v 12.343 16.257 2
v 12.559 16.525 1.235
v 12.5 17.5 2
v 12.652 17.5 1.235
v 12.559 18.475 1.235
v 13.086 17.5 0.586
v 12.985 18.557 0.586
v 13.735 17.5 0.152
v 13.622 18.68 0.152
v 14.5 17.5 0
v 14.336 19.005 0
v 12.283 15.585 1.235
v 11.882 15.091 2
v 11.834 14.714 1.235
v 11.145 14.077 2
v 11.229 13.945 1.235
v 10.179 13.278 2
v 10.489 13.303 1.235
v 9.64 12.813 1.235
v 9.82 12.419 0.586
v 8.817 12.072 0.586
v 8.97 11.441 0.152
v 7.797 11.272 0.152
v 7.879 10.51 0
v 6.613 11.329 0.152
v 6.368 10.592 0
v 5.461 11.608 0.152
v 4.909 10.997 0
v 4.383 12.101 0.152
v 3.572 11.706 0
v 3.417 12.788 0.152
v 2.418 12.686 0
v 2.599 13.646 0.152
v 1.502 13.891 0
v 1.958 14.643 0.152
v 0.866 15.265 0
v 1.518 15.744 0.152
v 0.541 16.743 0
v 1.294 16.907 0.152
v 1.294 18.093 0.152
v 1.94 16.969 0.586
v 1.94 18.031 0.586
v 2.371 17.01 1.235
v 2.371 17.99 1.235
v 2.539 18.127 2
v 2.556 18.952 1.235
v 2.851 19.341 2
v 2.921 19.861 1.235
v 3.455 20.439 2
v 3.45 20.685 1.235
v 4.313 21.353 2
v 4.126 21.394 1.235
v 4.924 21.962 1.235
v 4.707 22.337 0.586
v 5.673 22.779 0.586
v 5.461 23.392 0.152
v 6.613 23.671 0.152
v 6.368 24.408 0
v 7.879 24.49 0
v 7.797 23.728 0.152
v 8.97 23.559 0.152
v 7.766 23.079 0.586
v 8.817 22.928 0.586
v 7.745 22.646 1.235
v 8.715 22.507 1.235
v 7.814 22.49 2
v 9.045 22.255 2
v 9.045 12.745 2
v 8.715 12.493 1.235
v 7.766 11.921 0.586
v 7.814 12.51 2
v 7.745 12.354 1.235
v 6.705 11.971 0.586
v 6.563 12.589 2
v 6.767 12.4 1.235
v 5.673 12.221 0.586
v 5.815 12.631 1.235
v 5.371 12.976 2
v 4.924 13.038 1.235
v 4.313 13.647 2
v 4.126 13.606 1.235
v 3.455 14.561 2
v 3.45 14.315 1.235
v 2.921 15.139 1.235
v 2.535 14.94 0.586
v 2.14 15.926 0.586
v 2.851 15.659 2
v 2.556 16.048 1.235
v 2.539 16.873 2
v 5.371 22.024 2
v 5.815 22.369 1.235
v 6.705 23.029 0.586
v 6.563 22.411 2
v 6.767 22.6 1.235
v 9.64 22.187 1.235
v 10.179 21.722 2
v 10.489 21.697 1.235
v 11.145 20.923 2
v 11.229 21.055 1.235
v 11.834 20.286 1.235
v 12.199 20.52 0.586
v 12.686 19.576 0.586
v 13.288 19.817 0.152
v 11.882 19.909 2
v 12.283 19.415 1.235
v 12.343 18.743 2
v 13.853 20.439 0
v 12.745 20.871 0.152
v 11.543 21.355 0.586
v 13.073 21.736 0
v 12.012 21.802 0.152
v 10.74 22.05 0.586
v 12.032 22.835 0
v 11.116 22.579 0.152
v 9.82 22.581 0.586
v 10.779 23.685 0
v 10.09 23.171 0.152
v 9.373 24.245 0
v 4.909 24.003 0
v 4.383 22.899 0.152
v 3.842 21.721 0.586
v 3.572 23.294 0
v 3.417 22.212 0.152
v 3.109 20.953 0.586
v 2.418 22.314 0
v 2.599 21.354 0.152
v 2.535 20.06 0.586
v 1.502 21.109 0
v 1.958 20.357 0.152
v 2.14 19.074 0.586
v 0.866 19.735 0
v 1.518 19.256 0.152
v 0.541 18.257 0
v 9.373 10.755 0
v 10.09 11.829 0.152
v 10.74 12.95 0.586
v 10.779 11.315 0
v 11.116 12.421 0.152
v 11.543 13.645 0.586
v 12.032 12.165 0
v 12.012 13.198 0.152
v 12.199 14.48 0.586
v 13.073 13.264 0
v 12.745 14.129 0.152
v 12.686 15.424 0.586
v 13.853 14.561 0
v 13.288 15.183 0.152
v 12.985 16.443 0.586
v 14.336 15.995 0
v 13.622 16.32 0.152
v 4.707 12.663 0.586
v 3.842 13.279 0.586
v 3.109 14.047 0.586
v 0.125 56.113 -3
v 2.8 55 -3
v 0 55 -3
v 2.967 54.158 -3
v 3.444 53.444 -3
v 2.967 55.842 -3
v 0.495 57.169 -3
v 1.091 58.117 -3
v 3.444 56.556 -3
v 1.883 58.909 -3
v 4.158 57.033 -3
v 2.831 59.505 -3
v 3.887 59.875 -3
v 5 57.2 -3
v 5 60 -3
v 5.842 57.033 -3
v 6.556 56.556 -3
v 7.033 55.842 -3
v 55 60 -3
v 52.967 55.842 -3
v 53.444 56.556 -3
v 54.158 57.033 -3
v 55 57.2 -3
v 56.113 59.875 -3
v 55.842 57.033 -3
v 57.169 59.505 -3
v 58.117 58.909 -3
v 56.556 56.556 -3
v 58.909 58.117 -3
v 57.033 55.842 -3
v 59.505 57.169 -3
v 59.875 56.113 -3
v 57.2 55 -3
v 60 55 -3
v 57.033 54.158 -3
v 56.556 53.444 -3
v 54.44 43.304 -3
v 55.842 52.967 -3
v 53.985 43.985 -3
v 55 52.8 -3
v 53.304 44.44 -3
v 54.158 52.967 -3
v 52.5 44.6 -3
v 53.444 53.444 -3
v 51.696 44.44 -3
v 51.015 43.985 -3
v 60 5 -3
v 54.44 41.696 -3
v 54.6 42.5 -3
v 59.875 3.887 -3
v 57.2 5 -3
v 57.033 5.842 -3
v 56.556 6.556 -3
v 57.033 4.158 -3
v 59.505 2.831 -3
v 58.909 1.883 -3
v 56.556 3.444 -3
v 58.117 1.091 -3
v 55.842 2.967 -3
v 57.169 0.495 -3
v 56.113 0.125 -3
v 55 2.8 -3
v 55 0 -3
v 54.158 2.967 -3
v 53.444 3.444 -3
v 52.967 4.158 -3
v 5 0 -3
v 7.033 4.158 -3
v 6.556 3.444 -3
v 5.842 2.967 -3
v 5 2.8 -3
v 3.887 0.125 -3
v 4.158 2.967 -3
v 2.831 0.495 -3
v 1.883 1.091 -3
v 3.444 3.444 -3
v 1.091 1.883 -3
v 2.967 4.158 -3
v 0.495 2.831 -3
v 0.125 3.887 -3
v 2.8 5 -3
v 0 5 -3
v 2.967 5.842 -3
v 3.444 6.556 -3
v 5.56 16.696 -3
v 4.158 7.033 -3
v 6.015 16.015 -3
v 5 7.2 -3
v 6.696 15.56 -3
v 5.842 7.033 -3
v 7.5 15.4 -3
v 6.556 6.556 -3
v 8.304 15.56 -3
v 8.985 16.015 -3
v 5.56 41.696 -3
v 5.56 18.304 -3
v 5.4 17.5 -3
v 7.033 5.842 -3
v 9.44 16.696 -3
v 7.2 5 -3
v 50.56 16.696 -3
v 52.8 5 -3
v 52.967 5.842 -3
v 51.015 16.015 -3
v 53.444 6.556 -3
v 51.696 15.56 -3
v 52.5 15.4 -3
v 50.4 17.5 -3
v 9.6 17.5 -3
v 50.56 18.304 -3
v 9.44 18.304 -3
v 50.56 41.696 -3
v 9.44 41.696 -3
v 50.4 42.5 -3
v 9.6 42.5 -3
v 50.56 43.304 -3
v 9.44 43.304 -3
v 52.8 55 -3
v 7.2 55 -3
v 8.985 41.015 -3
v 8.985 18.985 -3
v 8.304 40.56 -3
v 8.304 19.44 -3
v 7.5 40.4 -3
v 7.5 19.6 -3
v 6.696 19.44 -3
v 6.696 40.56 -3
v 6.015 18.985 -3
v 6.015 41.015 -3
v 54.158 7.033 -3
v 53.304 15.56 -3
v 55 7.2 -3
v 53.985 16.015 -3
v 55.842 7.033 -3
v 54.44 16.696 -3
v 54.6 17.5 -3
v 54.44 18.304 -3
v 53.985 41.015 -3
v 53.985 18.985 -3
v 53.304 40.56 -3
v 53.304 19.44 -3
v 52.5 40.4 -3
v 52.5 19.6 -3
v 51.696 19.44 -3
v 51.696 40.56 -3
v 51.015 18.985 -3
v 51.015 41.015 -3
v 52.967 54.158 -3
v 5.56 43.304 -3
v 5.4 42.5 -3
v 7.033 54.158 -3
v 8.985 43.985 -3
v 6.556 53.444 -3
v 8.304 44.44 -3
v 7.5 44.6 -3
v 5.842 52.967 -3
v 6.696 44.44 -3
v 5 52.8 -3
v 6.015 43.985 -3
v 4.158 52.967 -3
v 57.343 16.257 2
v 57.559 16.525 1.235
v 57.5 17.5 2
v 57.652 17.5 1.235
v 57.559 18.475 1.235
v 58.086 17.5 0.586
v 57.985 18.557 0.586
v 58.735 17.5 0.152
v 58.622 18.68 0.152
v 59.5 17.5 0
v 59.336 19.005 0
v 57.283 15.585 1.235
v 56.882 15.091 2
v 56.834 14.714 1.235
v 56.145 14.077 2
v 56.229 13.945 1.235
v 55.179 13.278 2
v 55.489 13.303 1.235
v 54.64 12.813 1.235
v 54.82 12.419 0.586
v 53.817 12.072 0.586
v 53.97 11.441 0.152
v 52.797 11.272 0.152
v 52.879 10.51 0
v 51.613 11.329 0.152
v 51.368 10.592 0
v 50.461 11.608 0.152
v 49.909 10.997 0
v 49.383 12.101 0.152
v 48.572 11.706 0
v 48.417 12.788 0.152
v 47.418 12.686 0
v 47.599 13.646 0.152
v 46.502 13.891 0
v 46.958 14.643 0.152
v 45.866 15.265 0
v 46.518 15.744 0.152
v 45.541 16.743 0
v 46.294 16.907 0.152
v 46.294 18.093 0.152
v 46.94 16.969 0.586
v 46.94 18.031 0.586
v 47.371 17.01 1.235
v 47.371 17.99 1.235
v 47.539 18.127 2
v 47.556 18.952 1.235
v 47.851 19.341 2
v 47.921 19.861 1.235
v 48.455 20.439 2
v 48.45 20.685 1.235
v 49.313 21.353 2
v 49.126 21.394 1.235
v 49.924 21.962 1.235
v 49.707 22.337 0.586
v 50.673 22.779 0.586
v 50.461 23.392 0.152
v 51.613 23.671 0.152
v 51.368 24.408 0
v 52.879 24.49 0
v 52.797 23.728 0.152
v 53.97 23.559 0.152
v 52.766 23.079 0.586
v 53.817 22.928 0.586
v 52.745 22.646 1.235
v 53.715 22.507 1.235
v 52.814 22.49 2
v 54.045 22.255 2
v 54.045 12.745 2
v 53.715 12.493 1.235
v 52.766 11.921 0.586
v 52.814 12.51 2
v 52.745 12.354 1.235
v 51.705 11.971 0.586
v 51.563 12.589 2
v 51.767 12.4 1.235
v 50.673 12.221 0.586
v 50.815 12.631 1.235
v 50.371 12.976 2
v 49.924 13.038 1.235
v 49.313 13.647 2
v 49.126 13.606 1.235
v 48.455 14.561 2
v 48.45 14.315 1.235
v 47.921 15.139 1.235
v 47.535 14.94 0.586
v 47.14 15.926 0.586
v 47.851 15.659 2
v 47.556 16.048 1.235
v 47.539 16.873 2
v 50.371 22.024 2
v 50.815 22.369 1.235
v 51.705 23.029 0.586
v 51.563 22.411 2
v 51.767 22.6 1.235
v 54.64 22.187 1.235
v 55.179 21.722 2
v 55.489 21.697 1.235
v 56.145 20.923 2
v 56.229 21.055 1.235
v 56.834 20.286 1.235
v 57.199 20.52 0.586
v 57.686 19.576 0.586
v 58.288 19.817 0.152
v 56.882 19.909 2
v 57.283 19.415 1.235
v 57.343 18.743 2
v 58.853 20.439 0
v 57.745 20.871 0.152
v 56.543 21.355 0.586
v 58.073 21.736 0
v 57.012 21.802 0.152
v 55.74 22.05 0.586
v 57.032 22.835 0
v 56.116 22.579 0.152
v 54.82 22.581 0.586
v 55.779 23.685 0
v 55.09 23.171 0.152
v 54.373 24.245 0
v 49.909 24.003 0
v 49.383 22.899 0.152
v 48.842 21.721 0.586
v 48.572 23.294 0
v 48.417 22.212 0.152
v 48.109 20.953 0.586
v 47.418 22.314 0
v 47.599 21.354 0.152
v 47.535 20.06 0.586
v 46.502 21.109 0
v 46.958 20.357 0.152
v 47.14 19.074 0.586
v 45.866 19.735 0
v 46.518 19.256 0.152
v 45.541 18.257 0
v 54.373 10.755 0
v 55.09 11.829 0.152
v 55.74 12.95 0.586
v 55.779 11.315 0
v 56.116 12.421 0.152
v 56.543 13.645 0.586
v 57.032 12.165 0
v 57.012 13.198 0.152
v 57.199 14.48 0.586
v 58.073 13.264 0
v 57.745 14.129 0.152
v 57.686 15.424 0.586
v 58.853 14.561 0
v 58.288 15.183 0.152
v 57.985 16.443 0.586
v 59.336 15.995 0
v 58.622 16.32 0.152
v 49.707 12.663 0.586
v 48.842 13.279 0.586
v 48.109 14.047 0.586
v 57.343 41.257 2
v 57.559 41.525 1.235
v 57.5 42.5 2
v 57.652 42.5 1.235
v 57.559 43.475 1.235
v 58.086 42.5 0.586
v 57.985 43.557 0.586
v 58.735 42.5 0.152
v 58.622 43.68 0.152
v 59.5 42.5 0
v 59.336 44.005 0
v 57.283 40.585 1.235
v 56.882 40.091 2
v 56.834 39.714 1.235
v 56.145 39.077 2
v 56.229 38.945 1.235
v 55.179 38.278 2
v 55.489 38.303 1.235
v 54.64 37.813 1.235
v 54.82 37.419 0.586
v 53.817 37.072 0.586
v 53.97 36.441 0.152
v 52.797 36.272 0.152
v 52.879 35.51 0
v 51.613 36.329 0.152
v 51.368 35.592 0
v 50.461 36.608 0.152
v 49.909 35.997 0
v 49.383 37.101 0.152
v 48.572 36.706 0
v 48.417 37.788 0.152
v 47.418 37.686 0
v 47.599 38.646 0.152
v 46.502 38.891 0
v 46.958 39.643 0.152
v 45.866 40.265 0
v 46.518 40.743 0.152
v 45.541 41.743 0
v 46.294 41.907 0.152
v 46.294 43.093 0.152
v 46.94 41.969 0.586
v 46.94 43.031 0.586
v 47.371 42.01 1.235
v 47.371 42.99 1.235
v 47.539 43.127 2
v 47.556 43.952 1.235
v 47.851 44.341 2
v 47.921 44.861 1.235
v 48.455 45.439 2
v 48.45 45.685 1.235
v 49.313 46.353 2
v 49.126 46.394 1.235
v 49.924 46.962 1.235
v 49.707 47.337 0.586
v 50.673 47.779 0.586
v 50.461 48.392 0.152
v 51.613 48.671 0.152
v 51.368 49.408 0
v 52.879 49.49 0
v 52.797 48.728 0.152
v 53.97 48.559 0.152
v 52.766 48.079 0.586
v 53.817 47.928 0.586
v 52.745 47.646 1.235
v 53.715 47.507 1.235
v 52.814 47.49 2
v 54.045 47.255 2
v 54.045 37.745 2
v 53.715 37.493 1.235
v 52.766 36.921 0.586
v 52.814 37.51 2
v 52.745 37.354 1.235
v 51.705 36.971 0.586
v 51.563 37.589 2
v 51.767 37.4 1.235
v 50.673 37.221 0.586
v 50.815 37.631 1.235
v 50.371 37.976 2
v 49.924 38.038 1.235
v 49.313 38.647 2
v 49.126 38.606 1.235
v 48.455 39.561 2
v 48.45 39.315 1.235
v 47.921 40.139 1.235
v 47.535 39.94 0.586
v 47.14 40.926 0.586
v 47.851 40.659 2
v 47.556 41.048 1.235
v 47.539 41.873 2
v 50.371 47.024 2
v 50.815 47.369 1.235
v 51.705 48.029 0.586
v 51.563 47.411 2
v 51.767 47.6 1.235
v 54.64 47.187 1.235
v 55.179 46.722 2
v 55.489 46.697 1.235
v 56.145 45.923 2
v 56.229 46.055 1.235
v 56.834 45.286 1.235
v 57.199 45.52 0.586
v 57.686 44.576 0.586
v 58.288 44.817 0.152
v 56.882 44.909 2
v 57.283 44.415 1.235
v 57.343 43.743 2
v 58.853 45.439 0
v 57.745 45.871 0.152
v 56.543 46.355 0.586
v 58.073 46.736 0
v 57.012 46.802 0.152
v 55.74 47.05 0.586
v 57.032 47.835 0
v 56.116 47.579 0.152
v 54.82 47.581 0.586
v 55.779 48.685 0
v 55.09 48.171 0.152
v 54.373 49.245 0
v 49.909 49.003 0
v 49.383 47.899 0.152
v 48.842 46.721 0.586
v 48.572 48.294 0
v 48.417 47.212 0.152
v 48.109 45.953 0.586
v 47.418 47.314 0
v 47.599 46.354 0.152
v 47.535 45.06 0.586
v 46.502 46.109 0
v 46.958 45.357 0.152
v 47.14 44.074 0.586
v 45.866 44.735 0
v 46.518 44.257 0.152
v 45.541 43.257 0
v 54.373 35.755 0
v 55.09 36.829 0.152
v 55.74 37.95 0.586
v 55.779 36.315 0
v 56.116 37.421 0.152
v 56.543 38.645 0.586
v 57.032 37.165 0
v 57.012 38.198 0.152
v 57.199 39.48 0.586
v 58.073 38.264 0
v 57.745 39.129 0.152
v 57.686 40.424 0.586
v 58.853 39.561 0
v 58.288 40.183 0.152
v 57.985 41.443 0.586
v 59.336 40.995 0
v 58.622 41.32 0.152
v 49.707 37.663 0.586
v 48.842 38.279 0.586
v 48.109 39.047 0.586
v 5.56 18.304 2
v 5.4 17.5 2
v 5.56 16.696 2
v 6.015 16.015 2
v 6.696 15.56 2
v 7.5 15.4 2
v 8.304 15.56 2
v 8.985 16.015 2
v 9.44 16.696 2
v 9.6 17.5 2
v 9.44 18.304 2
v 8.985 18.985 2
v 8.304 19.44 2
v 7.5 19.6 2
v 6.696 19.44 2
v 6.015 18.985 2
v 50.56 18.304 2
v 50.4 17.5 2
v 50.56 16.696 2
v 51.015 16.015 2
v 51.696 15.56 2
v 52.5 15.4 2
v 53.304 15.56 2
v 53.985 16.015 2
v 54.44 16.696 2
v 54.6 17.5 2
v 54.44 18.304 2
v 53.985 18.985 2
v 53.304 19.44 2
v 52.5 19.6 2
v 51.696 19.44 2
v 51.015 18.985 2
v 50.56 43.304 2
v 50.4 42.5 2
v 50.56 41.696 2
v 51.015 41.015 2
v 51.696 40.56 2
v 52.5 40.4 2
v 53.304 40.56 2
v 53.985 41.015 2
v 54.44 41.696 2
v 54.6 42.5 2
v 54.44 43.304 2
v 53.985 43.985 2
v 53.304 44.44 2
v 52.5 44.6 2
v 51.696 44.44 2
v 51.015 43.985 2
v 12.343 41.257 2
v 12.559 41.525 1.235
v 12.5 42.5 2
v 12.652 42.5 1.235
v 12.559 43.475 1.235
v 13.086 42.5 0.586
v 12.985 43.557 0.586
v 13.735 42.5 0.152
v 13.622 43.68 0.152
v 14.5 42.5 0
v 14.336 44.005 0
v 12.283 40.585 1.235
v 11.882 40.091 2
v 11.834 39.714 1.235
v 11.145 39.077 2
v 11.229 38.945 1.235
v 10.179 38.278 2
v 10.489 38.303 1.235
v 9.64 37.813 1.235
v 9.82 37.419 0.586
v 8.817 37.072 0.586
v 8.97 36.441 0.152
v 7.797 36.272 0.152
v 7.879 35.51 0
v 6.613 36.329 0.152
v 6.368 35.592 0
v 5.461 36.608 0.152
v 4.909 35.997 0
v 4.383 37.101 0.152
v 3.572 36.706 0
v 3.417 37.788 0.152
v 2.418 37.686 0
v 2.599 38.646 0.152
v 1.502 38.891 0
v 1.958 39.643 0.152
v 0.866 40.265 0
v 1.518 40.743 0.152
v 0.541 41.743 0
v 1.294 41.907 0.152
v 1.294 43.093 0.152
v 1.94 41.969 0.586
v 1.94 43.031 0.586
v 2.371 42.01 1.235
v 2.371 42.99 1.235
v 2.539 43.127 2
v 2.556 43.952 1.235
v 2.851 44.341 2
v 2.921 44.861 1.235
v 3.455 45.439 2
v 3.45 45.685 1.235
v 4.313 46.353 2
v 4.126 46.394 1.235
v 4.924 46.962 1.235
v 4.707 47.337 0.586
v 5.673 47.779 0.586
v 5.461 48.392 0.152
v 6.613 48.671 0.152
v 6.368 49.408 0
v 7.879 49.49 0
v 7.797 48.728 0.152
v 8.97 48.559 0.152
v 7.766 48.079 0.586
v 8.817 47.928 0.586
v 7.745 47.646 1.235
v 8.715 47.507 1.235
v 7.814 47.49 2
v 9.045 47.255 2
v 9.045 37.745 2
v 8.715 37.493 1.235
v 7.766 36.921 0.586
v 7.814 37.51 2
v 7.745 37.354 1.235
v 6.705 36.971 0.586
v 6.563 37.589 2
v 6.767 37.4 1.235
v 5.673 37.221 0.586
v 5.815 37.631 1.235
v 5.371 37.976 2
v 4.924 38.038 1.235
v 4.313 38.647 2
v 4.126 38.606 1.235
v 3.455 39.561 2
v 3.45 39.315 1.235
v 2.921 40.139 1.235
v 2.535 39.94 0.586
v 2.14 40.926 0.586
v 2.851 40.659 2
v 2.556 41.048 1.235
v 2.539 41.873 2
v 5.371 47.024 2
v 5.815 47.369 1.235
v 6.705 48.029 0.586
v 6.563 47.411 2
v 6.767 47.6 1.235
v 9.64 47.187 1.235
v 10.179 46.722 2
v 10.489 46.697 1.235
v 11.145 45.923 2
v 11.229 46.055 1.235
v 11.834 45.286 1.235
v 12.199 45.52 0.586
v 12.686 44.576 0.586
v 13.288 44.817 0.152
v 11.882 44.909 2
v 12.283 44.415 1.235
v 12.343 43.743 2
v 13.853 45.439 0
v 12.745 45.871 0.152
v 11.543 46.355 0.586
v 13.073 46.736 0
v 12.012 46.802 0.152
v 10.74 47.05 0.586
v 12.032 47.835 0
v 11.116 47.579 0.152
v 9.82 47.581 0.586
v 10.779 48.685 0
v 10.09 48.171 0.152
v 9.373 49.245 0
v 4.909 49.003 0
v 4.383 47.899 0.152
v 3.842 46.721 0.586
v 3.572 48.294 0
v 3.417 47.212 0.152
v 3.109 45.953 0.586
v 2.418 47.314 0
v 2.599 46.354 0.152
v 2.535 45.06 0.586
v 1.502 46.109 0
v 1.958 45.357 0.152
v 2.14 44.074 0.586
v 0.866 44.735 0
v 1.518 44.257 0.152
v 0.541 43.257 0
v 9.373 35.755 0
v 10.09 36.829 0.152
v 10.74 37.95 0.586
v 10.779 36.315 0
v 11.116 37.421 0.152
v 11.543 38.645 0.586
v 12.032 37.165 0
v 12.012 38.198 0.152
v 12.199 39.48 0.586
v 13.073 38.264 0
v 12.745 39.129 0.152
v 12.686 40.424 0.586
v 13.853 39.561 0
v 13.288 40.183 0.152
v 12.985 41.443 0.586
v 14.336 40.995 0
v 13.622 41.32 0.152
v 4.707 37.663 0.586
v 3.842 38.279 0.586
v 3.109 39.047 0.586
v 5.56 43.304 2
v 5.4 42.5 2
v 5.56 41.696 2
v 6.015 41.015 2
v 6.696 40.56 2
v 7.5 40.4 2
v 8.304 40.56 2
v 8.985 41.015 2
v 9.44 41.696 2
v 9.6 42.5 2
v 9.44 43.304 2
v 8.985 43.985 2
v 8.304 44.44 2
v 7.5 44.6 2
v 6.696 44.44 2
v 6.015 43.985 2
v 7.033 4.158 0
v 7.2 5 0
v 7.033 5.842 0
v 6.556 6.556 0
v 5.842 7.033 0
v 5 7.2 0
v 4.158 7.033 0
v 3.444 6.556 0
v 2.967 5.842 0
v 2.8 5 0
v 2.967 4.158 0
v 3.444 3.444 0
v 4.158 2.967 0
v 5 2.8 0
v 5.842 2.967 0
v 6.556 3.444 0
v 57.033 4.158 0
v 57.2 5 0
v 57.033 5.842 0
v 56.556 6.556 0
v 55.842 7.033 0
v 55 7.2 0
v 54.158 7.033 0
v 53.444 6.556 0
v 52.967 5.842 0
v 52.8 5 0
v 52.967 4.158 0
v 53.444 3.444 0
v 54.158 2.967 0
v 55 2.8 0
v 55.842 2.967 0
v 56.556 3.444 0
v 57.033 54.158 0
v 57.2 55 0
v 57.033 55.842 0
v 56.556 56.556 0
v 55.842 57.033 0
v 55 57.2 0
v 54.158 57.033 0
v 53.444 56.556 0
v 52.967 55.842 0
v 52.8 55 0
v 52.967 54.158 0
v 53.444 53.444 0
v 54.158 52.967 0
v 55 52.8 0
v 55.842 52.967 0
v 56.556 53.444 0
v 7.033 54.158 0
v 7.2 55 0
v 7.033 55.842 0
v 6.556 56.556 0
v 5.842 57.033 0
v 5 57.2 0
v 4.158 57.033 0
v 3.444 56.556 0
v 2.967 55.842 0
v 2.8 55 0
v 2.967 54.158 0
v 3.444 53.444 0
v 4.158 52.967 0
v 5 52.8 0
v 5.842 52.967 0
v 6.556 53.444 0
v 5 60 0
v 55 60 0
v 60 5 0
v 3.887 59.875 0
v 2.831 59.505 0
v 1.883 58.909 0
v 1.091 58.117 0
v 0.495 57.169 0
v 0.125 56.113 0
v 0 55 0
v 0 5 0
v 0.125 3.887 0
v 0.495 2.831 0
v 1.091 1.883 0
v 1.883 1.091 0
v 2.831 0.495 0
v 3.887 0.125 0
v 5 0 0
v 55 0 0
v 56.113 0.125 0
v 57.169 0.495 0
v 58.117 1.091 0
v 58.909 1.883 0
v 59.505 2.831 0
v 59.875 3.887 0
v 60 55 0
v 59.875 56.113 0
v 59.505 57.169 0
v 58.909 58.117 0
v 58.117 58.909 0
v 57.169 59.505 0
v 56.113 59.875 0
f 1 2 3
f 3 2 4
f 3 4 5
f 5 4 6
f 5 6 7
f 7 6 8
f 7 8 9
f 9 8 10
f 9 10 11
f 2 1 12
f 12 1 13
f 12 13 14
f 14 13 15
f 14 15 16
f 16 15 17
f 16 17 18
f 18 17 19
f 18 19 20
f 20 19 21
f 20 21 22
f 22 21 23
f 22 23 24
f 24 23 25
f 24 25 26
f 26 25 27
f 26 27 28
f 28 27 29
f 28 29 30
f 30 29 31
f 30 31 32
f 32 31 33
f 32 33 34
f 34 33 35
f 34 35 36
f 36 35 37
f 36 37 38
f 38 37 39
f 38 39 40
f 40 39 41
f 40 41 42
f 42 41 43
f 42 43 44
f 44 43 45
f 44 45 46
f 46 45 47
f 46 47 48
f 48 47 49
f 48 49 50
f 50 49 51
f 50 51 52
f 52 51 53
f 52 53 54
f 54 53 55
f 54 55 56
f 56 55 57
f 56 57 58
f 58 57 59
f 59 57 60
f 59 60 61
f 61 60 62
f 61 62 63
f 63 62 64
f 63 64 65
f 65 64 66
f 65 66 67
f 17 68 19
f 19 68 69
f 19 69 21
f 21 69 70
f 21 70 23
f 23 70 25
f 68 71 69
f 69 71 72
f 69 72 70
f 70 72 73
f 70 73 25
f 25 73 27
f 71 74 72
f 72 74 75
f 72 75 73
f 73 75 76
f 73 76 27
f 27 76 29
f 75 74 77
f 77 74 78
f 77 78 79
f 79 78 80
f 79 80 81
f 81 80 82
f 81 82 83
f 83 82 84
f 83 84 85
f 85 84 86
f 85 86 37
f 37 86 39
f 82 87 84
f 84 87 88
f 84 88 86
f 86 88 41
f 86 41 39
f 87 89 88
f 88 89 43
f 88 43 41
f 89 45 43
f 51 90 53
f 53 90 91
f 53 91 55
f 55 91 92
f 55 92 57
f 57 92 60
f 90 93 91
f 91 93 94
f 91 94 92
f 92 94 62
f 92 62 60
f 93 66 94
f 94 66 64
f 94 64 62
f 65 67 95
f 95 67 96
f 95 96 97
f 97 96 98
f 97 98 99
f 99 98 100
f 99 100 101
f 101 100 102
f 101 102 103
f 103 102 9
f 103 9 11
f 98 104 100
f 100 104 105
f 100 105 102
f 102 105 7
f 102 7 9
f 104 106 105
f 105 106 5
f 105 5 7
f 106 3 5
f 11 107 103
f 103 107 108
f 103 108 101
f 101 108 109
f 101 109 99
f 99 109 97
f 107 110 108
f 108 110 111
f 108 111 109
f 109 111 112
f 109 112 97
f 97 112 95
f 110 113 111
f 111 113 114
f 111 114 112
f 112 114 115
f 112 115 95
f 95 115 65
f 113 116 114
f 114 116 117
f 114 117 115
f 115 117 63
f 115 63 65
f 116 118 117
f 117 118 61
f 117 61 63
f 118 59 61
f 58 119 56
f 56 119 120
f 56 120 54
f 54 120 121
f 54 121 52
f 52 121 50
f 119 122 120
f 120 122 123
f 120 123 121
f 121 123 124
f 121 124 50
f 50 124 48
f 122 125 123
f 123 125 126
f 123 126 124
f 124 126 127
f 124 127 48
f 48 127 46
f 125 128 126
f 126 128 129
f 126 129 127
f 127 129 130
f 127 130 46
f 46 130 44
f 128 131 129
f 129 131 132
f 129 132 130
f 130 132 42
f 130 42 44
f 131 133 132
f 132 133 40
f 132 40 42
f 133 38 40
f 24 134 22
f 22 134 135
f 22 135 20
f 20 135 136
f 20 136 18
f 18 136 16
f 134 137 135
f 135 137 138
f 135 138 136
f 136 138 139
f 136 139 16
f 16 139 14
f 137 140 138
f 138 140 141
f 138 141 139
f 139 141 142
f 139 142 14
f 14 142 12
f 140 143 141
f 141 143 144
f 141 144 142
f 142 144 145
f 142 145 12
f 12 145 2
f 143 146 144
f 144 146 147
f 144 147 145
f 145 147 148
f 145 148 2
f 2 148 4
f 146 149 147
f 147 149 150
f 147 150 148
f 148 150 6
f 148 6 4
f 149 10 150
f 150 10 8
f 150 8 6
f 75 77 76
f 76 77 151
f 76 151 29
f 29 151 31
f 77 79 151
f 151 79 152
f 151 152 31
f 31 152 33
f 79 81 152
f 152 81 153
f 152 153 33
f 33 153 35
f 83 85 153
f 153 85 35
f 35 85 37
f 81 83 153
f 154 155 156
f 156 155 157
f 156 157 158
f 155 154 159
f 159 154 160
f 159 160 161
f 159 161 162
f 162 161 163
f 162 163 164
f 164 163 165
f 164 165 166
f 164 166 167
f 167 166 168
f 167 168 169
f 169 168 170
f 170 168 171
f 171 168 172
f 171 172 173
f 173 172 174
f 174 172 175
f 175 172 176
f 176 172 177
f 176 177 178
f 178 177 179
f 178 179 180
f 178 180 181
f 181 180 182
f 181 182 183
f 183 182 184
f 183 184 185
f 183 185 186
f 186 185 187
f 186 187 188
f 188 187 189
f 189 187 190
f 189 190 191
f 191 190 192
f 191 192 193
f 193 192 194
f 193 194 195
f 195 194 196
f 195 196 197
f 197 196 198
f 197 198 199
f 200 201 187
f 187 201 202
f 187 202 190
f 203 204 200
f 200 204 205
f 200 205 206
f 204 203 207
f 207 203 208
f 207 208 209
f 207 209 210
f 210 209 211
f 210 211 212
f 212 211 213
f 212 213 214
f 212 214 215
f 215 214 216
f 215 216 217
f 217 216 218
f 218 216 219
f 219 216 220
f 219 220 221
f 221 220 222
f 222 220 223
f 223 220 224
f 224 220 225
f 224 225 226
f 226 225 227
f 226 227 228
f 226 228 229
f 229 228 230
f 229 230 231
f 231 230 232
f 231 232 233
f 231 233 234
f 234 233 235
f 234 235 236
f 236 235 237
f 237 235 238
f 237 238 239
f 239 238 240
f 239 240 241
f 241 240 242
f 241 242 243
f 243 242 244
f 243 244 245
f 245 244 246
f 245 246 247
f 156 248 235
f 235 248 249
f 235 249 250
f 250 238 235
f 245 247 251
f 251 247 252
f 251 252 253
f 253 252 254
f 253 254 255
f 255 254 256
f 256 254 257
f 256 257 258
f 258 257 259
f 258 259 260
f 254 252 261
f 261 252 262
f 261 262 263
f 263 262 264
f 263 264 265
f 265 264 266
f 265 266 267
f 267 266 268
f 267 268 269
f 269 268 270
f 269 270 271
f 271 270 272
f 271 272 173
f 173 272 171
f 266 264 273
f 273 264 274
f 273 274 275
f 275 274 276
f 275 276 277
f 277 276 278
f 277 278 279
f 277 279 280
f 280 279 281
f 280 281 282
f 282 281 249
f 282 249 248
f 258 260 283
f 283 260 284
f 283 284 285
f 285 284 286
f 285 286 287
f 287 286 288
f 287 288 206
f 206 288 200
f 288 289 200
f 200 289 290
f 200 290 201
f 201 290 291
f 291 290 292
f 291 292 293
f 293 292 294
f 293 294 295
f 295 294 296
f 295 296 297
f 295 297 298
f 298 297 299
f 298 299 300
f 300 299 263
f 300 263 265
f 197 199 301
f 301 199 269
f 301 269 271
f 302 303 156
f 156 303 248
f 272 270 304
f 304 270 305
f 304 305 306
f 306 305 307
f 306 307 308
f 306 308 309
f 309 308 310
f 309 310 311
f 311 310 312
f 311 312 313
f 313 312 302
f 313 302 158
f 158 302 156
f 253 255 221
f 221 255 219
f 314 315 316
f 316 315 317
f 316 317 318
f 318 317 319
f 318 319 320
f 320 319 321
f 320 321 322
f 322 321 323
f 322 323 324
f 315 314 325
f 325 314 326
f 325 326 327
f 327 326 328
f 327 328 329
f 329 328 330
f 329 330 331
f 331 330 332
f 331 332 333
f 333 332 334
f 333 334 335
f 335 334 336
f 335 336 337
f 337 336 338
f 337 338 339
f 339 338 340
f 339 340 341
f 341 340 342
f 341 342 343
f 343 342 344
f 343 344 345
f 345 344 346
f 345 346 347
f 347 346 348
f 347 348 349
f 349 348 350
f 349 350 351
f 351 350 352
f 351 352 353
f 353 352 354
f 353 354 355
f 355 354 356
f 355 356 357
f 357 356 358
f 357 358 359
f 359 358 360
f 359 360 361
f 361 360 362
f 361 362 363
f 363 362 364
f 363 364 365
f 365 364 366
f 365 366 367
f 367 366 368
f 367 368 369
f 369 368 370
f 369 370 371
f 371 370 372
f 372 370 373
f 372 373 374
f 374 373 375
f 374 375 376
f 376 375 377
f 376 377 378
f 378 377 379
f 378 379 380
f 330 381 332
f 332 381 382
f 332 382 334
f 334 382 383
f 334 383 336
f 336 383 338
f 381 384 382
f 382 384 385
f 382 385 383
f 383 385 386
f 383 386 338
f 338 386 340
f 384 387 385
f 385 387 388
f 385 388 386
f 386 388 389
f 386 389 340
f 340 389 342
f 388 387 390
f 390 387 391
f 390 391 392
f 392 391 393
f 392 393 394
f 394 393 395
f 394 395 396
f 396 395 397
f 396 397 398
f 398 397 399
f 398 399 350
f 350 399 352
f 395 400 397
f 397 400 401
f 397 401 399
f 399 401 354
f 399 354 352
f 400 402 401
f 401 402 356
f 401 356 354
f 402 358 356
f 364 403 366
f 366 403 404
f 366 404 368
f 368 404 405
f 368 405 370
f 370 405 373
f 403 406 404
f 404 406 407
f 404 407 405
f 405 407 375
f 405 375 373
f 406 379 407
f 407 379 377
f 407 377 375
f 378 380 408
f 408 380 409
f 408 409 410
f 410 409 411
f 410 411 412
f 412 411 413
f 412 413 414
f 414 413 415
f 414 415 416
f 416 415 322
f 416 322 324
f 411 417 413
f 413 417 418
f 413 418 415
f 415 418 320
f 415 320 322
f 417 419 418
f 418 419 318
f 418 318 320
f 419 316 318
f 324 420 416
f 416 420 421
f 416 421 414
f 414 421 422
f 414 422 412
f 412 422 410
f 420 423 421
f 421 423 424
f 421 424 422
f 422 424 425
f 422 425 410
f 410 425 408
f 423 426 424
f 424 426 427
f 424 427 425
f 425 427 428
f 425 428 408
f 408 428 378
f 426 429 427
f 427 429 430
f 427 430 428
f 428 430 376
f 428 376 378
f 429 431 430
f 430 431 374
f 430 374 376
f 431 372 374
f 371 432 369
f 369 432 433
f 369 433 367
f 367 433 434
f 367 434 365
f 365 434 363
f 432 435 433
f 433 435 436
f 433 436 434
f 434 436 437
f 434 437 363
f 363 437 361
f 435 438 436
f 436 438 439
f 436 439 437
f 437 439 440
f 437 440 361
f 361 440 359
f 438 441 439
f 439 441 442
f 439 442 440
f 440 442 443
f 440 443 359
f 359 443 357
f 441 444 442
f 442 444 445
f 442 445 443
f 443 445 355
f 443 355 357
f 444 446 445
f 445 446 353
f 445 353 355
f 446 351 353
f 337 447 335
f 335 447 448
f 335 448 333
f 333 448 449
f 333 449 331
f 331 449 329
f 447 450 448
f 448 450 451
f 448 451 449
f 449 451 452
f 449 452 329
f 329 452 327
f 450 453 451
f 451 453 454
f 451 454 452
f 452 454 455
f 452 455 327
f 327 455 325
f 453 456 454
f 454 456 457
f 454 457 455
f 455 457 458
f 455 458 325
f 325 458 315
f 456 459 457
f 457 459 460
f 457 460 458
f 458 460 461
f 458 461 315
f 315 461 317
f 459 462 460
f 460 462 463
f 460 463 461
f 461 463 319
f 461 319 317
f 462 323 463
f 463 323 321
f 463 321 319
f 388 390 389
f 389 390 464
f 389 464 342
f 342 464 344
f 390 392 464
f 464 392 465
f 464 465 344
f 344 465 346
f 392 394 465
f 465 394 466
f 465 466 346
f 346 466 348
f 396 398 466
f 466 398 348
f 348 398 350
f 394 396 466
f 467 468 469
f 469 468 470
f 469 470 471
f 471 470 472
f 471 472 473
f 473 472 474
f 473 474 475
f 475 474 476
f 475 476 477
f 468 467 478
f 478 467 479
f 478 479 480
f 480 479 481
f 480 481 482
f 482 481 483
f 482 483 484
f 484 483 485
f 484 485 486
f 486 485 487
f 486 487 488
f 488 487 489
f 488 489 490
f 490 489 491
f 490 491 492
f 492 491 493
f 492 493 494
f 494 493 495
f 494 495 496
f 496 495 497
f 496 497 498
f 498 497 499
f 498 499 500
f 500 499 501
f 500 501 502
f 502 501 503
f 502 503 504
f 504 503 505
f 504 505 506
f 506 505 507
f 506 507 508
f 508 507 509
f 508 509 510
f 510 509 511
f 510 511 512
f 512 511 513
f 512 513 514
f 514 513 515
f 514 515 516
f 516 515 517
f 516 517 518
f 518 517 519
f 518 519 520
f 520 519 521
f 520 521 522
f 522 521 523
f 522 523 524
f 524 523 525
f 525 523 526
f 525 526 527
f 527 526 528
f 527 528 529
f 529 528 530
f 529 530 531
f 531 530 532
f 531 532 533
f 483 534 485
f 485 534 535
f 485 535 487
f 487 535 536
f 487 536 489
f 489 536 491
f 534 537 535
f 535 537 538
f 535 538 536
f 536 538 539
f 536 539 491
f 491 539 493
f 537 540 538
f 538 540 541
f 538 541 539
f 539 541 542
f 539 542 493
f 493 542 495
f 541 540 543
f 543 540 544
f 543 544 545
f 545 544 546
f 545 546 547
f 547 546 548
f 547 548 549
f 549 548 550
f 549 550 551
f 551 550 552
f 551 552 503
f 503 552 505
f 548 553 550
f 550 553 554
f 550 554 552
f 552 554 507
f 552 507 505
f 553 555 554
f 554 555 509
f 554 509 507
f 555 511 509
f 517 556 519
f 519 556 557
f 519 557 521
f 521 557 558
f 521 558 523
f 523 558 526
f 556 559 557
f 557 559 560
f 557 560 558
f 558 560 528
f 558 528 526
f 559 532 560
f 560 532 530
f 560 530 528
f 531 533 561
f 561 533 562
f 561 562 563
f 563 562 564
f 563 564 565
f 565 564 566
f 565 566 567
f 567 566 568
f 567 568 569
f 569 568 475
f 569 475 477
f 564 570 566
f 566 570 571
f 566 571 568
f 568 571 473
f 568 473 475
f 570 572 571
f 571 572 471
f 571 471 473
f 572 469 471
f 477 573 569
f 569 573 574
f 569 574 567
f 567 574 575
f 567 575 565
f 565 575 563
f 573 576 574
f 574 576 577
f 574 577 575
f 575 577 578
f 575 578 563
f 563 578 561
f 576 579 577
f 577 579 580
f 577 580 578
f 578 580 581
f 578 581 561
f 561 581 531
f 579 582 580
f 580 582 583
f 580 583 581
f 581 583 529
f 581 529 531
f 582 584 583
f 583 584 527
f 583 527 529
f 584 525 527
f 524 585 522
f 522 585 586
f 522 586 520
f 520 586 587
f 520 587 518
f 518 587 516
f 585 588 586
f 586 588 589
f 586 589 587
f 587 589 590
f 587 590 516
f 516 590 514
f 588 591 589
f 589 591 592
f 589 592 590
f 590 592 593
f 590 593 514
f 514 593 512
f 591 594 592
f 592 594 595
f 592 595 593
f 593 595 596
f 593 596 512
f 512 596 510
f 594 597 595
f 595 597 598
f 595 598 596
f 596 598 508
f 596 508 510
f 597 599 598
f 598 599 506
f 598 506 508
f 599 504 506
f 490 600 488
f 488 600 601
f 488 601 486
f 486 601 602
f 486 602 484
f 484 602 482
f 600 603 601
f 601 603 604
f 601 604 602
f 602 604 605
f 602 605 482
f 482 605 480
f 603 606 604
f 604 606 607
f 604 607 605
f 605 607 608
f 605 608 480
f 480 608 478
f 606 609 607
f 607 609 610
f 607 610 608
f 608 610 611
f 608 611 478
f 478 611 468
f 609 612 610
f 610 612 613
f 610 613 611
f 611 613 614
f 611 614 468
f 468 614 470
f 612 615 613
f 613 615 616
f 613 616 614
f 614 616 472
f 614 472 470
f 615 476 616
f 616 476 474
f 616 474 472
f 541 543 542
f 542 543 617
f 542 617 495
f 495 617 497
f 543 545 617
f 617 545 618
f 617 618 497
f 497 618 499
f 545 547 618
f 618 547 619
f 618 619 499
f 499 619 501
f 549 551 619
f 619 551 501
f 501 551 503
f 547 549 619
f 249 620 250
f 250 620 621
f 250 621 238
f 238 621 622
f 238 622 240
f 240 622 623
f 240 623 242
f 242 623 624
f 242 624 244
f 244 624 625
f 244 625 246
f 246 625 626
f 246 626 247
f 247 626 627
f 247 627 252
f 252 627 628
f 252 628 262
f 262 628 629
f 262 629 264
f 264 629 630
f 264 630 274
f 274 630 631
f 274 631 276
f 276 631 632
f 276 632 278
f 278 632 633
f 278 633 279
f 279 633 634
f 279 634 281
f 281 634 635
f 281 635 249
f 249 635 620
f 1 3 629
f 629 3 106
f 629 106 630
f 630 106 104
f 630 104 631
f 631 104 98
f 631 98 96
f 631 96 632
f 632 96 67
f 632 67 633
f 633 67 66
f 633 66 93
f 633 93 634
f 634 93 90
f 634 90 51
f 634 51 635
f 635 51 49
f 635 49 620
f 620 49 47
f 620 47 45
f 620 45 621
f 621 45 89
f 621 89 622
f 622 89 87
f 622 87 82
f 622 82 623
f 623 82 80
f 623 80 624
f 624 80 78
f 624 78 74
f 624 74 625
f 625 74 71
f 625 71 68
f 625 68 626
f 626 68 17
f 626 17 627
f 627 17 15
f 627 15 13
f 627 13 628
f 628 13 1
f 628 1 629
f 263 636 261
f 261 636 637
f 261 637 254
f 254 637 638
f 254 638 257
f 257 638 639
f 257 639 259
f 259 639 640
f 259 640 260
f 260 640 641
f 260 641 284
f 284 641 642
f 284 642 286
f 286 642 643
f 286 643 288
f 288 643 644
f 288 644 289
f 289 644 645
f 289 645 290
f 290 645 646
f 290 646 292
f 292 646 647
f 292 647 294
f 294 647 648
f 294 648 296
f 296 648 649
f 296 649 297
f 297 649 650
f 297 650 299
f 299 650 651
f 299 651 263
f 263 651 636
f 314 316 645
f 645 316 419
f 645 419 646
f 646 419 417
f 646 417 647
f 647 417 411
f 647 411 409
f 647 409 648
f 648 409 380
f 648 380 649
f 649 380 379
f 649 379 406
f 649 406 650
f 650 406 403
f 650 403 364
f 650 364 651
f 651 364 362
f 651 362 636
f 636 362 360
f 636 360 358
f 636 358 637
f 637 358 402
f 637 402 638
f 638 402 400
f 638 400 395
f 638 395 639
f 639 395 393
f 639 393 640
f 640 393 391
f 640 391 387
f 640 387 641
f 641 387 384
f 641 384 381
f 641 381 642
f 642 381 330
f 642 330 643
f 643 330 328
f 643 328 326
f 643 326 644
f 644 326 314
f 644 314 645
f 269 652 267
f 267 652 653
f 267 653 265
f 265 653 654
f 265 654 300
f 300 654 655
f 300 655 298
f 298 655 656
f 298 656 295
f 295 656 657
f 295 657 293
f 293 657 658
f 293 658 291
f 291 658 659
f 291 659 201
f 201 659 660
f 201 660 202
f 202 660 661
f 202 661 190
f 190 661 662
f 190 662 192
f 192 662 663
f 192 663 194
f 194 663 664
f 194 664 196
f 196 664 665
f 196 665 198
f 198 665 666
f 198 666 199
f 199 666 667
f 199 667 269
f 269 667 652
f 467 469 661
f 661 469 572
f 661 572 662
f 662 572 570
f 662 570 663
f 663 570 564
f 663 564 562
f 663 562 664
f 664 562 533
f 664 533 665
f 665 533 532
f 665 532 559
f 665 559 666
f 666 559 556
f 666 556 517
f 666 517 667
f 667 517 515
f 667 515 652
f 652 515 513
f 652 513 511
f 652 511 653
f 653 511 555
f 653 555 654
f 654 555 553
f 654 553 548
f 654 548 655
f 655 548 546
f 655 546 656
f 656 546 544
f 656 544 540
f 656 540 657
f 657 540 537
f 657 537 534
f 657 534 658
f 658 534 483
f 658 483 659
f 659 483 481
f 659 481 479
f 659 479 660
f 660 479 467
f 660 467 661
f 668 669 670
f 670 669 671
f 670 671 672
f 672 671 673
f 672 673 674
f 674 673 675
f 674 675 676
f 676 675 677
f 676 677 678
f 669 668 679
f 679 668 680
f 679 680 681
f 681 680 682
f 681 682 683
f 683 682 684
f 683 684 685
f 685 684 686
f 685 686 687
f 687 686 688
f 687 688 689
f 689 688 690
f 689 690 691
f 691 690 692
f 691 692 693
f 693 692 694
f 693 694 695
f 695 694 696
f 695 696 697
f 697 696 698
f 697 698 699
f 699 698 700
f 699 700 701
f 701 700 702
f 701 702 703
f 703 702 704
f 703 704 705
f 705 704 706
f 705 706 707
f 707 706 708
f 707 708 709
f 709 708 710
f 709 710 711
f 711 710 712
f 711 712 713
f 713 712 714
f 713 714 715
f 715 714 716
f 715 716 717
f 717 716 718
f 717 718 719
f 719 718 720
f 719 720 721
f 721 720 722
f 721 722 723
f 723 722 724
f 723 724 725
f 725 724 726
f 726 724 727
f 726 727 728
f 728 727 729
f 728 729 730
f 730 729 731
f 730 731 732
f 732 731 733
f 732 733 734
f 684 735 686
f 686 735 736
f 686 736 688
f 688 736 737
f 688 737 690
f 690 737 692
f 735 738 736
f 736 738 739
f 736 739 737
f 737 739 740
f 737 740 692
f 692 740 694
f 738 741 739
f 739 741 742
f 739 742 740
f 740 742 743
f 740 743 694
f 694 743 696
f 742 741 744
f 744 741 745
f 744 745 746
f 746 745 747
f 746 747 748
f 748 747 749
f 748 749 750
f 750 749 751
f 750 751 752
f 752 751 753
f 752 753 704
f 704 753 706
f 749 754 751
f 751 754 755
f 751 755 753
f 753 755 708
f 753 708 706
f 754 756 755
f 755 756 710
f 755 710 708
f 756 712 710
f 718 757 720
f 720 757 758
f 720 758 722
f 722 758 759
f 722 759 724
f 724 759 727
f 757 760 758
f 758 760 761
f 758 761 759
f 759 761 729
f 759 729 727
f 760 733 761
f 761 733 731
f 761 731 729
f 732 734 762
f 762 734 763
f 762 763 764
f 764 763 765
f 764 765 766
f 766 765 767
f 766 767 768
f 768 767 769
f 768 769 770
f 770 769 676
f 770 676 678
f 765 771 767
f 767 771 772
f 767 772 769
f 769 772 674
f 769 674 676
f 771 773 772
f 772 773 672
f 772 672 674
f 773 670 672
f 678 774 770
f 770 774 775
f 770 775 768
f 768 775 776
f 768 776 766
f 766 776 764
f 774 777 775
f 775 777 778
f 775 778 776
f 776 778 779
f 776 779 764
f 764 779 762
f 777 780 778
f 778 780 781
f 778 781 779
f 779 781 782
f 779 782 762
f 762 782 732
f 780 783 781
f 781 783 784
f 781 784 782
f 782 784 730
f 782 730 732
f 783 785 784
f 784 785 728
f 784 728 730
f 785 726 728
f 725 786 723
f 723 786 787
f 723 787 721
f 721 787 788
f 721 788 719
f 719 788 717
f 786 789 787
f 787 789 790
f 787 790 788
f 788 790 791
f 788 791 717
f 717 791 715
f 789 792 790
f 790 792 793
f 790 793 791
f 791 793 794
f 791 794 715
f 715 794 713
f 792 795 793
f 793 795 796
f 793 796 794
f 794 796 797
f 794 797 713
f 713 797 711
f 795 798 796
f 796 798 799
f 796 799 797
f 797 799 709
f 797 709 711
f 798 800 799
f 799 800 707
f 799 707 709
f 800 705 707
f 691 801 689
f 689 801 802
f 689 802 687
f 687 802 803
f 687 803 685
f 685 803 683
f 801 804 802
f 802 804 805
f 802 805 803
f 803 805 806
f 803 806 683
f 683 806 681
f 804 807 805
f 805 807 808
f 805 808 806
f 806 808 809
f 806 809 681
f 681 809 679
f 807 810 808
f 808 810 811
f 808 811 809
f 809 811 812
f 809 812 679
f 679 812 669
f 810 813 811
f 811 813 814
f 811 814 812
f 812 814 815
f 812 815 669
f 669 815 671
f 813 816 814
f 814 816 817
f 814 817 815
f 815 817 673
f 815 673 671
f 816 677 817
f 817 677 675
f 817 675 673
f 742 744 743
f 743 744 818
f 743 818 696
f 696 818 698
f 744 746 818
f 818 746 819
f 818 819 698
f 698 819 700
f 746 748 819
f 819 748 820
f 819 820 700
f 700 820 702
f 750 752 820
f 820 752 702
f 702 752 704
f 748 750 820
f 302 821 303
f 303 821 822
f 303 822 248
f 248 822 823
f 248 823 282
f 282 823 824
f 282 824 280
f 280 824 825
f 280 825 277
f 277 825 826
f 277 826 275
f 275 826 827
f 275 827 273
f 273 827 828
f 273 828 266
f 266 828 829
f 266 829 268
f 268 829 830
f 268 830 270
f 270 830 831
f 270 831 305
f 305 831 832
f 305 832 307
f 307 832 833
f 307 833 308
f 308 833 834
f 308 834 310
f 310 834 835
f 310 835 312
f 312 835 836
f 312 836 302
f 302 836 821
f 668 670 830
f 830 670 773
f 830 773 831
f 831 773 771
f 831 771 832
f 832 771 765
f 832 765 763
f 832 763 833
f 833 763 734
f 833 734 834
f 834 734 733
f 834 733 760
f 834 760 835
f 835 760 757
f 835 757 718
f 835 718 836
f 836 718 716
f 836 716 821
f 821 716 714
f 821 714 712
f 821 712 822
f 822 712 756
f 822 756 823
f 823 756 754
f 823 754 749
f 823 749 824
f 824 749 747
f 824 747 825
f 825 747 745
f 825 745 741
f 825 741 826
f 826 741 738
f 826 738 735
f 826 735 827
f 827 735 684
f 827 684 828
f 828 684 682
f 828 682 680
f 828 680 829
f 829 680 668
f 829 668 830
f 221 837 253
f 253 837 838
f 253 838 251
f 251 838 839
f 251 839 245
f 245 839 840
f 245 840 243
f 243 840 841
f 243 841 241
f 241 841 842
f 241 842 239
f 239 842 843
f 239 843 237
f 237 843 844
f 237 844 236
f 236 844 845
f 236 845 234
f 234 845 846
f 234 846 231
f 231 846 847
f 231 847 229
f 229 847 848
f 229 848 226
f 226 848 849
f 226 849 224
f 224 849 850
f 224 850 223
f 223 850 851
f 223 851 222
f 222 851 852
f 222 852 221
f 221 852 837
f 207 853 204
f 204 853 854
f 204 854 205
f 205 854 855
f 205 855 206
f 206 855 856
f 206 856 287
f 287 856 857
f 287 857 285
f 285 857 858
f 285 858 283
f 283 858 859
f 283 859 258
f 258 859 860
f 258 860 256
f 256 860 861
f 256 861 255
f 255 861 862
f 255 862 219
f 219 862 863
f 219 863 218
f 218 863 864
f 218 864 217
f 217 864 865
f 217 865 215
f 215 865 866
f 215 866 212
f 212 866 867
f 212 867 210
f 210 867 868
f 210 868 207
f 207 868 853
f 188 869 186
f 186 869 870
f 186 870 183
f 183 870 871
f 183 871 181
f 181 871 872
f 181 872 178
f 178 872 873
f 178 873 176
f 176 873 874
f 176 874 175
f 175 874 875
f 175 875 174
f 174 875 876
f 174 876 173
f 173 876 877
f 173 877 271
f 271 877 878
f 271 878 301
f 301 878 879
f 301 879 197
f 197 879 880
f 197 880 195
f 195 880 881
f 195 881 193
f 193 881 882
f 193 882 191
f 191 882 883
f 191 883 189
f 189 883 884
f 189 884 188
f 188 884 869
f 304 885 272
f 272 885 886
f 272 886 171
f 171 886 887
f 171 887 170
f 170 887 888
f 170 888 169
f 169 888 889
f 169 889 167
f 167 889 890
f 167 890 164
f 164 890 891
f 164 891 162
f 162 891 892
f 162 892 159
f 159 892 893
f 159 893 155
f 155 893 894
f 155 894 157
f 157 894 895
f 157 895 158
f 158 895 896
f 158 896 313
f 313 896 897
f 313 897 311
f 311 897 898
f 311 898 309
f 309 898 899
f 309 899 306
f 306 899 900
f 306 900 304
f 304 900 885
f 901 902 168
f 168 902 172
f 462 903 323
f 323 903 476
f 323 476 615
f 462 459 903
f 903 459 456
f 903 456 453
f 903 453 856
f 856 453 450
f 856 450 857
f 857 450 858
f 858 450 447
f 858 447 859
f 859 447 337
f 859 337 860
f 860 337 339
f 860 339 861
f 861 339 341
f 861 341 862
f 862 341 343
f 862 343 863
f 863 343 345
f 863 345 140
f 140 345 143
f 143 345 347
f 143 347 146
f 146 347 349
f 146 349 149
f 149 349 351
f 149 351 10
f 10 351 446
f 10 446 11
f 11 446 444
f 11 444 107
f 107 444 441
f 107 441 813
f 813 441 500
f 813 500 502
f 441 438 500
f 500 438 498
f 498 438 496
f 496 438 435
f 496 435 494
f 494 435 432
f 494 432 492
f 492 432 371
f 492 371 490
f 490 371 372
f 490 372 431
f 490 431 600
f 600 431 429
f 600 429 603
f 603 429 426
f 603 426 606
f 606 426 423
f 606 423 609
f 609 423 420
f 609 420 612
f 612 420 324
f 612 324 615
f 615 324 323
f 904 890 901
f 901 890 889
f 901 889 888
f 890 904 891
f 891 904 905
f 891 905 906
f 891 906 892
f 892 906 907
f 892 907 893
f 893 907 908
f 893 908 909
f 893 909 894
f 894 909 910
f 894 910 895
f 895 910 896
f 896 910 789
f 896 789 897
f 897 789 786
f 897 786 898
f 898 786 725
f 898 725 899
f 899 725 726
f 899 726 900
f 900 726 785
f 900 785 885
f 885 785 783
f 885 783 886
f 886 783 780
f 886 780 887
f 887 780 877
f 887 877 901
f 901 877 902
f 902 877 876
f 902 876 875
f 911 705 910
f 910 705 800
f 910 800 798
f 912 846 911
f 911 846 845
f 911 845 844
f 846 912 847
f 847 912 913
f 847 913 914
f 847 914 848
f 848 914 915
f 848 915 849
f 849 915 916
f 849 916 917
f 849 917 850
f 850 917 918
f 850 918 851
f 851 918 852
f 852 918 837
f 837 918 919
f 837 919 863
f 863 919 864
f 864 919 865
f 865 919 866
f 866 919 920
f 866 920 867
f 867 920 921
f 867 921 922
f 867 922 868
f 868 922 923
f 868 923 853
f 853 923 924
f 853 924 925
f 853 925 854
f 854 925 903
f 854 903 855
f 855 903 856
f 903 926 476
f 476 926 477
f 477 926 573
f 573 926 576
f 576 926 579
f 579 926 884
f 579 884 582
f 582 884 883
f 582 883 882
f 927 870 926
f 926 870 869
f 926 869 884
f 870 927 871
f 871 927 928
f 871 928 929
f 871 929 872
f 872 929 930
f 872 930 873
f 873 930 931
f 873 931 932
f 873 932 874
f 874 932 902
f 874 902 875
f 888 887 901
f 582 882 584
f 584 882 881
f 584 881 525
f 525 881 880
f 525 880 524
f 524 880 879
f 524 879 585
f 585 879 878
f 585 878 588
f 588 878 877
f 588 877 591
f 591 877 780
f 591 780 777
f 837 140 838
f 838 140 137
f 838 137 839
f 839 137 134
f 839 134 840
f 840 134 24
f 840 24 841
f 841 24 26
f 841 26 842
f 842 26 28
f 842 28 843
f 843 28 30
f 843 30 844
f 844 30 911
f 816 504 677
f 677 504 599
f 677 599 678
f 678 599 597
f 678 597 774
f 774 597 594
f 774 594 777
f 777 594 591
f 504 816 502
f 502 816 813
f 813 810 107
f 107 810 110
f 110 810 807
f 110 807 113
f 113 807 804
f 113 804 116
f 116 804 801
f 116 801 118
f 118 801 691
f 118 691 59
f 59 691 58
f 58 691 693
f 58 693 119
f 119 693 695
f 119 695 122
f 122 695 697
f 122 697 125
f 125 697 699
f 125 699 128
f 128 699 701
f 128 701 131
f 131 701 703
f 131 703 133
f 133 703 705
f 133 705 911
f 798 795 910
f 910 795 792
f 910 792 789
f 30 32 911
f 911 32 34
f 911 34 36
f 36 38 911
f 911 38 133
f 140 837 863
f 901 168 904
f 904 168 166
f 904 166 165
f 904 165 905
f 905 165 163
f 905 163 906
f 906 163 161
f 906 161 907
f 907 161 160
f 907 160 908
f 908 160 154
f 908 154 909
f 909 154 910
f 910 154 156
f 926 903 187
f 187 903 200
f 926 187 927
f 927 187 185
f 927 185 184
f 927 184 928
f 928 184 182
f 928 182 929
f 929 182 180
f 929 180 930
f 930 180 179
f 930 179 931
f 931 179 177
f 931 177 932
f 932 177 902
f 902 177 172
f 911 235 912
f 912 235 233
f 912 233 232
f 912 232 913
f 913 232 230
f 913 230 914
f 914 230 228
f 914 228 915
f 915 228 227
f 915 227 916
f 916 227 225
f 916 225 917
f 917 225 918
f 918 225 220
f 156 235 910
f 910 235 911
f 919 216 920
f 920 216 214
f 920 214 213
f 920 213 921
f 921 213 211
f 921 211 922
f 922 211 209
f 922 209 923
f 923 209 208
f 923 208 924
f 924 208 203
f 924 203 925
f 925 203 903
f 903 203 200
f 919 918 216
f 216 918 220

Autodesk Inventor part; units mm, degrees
ref_plane "YZ Plane" through (0, 0, 0) normal (1, 0, 0) x (0, 1, 0)
ref_plane "XZ Plane" through (0, 0, 0) normal (0, 1, 0) x (-1, 0, 0)
ref_plane "XY Plane" through (0, 0, 0) normal (0, 0, 1) x (1, 0, 0)
sketch "Sketch1" plane through (0, 0, 0) normal (0, 0, 1) x (1, 0, 0)
  line L0 (0, 0) -> (60, 0)
  line L1 (60, 0) -> (60, 60)
  line L2 (60, 60) -> (0, 60)
  line L3 (0, 60) -> (0, 0)
  line L4 (5, 55) -> (55, 55) construction
  line L5 (55, 55) -> (55, 5) construction
  line L6 (55, 5) -> (5, 5) construction
  line L7 (5, 5) -> (5, 55) construction
  circle A0 centre (5, 55) radius 2.2
  circle A1 centre (55, 55) radius 2.2
  circle A2 centre (55, 5) radius 2.2
  circle A3 centre (5, 5) radius 2.2
  line L8 (7.5, 42.5) -> (52.5, 42.5) construction
  line L9 (52.5, 42.5) -> (52.5, 17.5) construction
  line L10 (52.5, 17.5) -> (7.5, 17.5) construction
  line L11 (7.5, 17.5) -> (7.5, 42.5) construction
  circle A4 centre (7.5, 42.5) radius 5
  circle A5 centre (7.5, 42.5) radius 2.1
  dimension "d0" = 60
  dimension "d1" = 60
  dimension "d2" = 50
  dimension "d3" = 50
  dimension "d4" = 5
  dimension "d5" = 5
  dimension "d6" = 4.4
  dimension "d7" = 4.4
  dimension "d8" = 4.4
  dimension "d9" = 4.4
  dimension "d10" = 45
  dimension "d11" = 25
  dimension "d12" = 17.5
  dimension "d13" = 7.5
  dimension "d14" = 10
  dimension "d15" = 4.2
extrude "Extrusion1" add sketch "Sketch1" against normal blind 3 contours L3 L2 L1 L0 | A4 | A5
extrude "Extrusion2" add sketch "Sketch1" along normal blind 2 contours A4
fillet "Fillet1" radius 2 1 edges at (2.5, 42.5, 0)
extrude "Extrusion3" cut sketch "Sketch1" against normal through all contours A5
pattern_sketch "Sketch Driven Pattern1" of "Extrusion2", "Fillet1", "Extrusion3" from (7.5, 42.5, 0) copies at (52.5, 42.5, 0) at (52.5, 17.5, 0) at (7.5, 17.5, 0)
fillet "Fillet2" radius 5 4 edges at (0, 0, -1.5) (60, 0, -1.5) (60, 60, -1.5) (0, 60, -1.5)
equation "\"d4\" = -0.5 * d2 + 0.5 * d0"
equation "\"d5\" = -0.5 * d3 + 0.5 * d1"
equation "\"d12\" = -0.5 * d11 + 0.5 * d1"
equation "\"d13\" = -0.5 * d10 + 0.5 * d0"
properties part number "power_distribution_mount"
